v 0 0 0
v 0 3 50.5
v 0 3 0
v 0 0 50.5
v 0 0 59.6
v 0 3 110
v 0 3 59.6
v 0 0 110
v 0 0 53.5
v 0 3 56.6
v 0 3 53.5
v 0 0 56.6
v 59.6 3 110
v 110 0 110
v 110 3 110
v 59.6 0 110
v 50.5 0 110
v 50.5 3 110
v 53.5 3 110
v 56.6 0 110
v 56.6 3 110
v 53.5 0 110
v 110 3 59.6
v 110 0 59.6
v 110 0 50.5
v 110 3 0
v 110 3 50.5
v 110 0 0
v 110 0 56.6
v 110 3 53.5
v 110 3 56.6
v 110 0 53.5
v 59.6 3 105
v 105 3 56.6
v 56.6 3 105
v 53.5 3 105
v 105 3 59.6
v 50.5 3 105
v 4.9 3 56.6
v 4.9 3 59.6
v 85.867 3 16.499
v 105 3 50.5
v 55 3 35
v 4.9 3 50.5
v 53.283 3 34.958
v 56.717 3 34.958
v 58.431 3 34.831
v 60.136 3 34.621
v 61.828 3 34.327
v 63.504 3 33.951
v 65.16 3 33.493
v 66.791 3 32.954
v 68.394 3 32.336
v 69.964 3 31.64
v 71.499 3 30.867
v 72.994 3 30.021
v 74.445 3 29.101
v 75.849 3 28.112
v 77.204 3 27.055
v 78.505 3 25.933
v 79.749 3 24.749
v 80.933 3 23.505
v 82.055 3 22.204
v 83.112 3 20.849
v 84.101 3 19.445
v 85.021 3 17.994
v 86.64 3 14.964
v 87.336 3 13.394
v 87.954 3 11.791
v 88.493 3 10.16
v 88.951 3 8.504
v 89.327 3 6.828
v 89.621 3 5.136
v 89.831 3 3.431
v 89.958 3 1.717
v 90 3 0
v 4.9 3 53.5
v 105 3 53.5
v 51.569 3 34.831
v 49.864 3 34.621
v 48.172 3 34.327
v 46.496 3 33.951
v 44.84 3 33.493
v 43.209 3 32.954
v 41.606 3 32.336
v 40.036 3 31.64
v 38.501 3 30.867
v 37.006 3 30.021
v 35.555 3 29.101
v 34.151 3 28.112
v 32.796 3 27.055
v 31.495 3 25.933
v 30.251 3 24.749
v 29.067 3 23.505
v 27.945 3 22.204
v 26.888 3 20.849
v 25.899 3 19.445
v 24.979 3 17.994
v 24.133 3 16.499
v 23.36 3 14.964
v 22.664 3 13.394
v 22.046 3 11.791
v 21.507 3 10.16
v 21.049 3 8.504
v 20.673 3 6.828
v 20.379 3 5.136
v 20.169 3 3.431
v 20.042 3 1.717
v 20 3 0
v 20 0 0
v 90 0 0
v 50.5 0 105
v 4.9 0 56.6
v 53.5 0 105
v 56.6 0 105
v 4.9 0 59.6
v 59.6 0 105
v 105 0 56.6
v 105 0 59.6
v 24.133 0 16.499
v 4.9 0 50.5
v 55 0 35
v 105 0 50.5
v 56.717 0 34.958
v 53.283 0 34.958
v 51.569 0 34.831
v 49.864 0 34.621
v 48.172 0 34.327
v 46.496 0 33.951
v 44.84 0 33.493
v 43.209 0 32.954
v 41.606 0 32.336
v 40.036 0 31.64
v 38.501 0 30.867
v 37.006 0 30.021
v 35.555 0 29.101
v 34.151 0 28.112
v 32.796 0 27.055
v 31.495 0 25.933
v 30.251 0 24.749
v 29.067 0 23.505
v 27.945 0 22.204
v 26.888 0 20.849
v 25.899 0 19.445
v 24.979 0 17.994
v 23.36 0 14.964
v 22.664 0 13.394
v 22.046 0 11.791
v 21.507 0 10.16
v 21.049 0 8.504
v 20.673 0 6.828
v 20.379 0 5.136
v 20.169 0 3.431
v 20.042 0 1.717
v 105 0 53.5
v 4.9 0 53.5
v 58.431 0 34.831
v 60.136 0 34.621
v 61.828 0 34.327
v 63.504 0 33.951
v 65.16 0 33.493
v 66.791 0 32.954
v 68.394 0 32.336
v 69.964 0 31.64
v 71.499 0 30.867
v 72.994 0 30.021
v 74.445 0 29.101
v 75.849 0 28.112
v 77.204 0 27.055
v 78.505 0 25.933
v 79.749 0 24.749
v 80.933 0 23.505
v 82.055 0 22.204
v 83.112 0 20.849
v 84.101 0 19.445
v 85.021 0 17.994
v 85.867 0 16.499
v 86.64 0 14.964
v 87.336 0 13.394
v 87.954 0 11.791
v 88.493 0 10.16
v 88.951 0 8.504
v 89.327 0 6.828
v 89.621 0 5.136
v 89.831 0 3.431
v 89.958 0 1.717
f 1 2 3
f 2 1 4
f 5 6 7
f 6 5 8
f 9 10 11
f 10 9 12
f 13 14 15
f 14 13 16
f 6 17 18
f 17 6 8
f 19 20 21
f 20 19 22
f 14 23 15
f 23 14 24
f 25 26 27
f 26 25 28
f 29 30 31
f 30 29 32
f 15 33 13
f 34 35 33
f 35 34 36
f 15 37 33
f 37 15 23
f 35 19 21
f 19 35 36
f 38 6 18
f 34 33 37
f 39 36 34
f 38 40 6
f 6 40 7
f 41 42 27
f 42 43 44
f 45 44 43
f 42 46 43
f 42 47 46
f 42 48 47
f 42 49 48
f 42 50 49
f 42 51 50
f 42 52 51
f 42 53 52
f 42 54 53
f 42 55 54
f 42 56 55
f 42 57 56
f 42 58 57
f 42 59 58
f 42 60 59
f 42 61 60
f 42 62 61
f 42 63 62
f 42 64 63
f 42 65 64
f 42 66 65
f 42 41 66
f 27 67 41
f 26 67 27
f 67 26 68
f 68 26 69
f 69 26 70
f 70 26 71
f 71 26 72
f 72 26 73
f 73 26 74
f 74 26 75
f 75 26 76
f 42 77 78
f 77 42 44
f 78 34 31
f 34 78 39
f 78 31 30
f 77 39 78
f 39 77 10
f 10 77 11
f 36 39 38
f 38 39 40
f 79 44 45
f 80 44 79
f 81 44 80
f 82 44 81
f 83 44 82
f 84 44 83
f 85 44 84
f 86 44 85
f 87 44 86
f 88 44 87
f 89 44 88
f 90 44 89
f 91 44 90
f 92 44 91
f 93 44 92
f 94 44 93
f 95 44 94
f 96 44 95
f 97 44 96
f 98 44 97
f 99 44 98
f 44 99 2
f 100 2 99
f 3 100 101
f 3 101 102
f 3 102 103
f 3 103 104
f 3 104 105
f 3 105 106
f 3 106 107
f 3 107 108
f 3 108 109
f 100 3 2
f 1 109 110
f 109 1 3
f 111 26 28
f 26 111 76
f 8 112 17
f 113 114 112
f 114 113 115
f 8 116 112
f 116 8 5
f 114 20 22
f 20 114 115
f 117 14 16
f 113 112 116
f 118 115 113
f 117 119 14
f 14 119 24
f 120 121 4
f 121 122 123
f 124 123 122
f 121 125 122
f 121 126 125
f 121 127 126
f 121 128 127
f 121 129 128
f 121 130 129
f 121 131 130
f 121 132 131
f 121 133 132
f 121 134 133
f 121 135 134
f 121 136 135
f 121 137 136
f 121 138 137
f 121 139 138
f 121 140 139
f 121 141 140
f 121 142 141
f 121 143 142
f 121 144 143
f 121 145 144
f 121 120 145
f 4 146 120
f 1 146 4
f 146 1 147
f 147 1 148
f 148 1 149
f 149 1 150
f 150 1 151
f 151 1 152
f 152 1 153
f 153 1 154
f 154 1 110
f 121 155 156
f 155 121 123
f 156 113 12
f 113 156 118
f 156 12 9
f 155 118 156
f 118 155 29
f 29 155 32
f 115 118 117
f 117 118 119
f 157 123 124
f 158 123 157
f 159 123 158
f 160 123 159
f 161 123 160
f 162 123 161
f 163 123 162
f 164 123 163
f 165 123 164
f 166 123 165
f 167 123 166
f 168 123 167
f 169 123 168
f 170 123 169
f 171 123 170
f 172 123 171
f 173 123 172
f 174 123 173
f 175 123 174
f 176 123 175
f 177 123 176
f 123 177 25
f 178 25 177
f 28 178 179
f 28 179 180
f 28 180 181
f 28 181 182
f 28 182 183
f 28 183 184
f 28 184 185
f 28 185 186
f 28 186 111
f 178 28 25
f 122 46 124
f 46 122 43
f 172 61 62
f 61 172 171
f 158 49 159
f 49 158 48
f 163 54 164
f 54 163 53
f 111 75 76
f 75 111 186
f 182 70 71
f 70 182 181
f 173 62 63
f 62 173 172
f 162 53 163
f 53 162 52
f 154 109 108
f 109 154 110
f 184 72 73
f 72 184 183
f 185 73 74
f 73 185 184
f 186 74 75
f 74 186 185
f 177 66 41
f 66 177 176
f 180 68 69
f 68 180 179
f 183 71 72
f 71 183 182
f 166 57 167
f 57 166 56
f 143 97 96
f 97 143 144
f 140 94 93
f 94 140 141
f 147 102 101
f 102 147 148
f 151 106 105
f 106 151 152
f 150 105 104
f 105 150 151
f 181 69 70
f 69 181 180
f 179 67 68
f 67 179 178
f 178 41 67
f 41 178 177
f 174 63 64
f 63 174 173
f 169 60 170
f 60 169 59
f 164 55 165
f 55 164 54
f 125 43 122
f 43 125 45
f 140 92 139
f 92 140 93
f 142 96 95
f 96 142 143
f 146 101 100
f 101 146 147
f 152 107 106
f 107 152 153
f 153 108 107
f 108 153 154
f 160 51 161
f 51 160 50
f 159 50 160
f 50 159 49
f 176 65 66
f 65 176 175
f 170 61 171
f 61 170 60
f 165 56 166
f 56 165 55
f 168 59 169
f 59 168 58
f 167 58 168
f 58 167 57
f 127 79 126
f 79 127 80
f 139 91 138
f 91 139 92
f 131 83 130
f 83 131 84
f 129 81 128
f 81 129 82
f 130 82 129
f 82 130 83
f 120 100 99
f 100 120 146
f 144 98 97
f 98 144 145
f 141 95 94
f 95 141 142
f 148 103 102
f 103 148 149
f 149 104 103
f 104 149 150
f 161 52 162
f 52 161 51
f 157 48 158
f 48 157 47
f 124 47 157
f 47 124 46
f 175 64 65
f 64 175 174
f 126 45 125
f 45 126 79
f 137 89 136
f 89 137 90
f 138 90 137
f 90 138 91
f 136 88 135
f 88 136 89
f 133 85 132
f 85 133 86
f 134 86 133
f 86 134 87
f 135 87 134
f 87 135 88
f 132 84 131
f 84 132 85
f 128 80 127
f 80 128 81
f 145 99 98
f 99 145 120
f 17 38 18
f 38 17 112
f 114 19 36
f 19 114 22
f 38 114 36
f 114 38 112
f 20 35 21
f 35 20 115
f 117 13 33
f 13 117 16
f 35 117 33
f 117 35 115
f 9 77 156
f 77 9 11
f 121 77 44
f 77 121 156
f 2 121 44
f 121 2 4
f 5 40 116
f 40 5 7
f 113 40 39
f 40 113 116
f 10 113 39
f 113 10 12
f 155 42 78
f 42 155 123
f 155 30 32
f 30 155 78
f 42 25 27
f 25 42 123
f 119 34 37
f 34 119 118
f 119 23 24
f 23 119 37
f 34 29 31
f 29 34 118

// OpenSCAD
// ============================================================
// Hamster Habitat — Boru Giris Paneli
// 110x3x110mm panel + alt kenarda r=35 yari daire acikligi
// Merkez X=55 Z=0 (kenar ortasi) — dogal yari klip
// Alt kenardaki notchlar acikliga duser, diger 3 kenar normal
// ============================================================
$fn = 128;

module panel_boru() {
  color("lightsteelblue", 0.9)
  difference() {
    cube([110, 3, 110]);

    // r=35 yari daire acikligi — merkez alt kenarda
    translate([55, -0.1, 0]) rotate([-90, 0, 0]) cylinder(r=35, h=3.2);

    // ust kenar — 2 notch
    translate([50.5, -0.1, 105]) cube([3, 3.2, 5]);
    translate([56.6, -0.1, 105]) cube([3, 3.2, 5]);
    // sol kenar — 2 notch
    translate([ -0.1, -0.1, 50.5]) cube([5, 3.2, 3]);
    translate([ -0.1, -0.1, 56.6]) cube([5, 3.2, 3]);
    // sag kenar — 2 notch
    translate([  105, -0.1, 50.5]) cube([5, 3.2, 3]);
    translate([  105, -0.1, 56.6]) cube([5, 3.2, 3]);
  }
}

panel_boru();
